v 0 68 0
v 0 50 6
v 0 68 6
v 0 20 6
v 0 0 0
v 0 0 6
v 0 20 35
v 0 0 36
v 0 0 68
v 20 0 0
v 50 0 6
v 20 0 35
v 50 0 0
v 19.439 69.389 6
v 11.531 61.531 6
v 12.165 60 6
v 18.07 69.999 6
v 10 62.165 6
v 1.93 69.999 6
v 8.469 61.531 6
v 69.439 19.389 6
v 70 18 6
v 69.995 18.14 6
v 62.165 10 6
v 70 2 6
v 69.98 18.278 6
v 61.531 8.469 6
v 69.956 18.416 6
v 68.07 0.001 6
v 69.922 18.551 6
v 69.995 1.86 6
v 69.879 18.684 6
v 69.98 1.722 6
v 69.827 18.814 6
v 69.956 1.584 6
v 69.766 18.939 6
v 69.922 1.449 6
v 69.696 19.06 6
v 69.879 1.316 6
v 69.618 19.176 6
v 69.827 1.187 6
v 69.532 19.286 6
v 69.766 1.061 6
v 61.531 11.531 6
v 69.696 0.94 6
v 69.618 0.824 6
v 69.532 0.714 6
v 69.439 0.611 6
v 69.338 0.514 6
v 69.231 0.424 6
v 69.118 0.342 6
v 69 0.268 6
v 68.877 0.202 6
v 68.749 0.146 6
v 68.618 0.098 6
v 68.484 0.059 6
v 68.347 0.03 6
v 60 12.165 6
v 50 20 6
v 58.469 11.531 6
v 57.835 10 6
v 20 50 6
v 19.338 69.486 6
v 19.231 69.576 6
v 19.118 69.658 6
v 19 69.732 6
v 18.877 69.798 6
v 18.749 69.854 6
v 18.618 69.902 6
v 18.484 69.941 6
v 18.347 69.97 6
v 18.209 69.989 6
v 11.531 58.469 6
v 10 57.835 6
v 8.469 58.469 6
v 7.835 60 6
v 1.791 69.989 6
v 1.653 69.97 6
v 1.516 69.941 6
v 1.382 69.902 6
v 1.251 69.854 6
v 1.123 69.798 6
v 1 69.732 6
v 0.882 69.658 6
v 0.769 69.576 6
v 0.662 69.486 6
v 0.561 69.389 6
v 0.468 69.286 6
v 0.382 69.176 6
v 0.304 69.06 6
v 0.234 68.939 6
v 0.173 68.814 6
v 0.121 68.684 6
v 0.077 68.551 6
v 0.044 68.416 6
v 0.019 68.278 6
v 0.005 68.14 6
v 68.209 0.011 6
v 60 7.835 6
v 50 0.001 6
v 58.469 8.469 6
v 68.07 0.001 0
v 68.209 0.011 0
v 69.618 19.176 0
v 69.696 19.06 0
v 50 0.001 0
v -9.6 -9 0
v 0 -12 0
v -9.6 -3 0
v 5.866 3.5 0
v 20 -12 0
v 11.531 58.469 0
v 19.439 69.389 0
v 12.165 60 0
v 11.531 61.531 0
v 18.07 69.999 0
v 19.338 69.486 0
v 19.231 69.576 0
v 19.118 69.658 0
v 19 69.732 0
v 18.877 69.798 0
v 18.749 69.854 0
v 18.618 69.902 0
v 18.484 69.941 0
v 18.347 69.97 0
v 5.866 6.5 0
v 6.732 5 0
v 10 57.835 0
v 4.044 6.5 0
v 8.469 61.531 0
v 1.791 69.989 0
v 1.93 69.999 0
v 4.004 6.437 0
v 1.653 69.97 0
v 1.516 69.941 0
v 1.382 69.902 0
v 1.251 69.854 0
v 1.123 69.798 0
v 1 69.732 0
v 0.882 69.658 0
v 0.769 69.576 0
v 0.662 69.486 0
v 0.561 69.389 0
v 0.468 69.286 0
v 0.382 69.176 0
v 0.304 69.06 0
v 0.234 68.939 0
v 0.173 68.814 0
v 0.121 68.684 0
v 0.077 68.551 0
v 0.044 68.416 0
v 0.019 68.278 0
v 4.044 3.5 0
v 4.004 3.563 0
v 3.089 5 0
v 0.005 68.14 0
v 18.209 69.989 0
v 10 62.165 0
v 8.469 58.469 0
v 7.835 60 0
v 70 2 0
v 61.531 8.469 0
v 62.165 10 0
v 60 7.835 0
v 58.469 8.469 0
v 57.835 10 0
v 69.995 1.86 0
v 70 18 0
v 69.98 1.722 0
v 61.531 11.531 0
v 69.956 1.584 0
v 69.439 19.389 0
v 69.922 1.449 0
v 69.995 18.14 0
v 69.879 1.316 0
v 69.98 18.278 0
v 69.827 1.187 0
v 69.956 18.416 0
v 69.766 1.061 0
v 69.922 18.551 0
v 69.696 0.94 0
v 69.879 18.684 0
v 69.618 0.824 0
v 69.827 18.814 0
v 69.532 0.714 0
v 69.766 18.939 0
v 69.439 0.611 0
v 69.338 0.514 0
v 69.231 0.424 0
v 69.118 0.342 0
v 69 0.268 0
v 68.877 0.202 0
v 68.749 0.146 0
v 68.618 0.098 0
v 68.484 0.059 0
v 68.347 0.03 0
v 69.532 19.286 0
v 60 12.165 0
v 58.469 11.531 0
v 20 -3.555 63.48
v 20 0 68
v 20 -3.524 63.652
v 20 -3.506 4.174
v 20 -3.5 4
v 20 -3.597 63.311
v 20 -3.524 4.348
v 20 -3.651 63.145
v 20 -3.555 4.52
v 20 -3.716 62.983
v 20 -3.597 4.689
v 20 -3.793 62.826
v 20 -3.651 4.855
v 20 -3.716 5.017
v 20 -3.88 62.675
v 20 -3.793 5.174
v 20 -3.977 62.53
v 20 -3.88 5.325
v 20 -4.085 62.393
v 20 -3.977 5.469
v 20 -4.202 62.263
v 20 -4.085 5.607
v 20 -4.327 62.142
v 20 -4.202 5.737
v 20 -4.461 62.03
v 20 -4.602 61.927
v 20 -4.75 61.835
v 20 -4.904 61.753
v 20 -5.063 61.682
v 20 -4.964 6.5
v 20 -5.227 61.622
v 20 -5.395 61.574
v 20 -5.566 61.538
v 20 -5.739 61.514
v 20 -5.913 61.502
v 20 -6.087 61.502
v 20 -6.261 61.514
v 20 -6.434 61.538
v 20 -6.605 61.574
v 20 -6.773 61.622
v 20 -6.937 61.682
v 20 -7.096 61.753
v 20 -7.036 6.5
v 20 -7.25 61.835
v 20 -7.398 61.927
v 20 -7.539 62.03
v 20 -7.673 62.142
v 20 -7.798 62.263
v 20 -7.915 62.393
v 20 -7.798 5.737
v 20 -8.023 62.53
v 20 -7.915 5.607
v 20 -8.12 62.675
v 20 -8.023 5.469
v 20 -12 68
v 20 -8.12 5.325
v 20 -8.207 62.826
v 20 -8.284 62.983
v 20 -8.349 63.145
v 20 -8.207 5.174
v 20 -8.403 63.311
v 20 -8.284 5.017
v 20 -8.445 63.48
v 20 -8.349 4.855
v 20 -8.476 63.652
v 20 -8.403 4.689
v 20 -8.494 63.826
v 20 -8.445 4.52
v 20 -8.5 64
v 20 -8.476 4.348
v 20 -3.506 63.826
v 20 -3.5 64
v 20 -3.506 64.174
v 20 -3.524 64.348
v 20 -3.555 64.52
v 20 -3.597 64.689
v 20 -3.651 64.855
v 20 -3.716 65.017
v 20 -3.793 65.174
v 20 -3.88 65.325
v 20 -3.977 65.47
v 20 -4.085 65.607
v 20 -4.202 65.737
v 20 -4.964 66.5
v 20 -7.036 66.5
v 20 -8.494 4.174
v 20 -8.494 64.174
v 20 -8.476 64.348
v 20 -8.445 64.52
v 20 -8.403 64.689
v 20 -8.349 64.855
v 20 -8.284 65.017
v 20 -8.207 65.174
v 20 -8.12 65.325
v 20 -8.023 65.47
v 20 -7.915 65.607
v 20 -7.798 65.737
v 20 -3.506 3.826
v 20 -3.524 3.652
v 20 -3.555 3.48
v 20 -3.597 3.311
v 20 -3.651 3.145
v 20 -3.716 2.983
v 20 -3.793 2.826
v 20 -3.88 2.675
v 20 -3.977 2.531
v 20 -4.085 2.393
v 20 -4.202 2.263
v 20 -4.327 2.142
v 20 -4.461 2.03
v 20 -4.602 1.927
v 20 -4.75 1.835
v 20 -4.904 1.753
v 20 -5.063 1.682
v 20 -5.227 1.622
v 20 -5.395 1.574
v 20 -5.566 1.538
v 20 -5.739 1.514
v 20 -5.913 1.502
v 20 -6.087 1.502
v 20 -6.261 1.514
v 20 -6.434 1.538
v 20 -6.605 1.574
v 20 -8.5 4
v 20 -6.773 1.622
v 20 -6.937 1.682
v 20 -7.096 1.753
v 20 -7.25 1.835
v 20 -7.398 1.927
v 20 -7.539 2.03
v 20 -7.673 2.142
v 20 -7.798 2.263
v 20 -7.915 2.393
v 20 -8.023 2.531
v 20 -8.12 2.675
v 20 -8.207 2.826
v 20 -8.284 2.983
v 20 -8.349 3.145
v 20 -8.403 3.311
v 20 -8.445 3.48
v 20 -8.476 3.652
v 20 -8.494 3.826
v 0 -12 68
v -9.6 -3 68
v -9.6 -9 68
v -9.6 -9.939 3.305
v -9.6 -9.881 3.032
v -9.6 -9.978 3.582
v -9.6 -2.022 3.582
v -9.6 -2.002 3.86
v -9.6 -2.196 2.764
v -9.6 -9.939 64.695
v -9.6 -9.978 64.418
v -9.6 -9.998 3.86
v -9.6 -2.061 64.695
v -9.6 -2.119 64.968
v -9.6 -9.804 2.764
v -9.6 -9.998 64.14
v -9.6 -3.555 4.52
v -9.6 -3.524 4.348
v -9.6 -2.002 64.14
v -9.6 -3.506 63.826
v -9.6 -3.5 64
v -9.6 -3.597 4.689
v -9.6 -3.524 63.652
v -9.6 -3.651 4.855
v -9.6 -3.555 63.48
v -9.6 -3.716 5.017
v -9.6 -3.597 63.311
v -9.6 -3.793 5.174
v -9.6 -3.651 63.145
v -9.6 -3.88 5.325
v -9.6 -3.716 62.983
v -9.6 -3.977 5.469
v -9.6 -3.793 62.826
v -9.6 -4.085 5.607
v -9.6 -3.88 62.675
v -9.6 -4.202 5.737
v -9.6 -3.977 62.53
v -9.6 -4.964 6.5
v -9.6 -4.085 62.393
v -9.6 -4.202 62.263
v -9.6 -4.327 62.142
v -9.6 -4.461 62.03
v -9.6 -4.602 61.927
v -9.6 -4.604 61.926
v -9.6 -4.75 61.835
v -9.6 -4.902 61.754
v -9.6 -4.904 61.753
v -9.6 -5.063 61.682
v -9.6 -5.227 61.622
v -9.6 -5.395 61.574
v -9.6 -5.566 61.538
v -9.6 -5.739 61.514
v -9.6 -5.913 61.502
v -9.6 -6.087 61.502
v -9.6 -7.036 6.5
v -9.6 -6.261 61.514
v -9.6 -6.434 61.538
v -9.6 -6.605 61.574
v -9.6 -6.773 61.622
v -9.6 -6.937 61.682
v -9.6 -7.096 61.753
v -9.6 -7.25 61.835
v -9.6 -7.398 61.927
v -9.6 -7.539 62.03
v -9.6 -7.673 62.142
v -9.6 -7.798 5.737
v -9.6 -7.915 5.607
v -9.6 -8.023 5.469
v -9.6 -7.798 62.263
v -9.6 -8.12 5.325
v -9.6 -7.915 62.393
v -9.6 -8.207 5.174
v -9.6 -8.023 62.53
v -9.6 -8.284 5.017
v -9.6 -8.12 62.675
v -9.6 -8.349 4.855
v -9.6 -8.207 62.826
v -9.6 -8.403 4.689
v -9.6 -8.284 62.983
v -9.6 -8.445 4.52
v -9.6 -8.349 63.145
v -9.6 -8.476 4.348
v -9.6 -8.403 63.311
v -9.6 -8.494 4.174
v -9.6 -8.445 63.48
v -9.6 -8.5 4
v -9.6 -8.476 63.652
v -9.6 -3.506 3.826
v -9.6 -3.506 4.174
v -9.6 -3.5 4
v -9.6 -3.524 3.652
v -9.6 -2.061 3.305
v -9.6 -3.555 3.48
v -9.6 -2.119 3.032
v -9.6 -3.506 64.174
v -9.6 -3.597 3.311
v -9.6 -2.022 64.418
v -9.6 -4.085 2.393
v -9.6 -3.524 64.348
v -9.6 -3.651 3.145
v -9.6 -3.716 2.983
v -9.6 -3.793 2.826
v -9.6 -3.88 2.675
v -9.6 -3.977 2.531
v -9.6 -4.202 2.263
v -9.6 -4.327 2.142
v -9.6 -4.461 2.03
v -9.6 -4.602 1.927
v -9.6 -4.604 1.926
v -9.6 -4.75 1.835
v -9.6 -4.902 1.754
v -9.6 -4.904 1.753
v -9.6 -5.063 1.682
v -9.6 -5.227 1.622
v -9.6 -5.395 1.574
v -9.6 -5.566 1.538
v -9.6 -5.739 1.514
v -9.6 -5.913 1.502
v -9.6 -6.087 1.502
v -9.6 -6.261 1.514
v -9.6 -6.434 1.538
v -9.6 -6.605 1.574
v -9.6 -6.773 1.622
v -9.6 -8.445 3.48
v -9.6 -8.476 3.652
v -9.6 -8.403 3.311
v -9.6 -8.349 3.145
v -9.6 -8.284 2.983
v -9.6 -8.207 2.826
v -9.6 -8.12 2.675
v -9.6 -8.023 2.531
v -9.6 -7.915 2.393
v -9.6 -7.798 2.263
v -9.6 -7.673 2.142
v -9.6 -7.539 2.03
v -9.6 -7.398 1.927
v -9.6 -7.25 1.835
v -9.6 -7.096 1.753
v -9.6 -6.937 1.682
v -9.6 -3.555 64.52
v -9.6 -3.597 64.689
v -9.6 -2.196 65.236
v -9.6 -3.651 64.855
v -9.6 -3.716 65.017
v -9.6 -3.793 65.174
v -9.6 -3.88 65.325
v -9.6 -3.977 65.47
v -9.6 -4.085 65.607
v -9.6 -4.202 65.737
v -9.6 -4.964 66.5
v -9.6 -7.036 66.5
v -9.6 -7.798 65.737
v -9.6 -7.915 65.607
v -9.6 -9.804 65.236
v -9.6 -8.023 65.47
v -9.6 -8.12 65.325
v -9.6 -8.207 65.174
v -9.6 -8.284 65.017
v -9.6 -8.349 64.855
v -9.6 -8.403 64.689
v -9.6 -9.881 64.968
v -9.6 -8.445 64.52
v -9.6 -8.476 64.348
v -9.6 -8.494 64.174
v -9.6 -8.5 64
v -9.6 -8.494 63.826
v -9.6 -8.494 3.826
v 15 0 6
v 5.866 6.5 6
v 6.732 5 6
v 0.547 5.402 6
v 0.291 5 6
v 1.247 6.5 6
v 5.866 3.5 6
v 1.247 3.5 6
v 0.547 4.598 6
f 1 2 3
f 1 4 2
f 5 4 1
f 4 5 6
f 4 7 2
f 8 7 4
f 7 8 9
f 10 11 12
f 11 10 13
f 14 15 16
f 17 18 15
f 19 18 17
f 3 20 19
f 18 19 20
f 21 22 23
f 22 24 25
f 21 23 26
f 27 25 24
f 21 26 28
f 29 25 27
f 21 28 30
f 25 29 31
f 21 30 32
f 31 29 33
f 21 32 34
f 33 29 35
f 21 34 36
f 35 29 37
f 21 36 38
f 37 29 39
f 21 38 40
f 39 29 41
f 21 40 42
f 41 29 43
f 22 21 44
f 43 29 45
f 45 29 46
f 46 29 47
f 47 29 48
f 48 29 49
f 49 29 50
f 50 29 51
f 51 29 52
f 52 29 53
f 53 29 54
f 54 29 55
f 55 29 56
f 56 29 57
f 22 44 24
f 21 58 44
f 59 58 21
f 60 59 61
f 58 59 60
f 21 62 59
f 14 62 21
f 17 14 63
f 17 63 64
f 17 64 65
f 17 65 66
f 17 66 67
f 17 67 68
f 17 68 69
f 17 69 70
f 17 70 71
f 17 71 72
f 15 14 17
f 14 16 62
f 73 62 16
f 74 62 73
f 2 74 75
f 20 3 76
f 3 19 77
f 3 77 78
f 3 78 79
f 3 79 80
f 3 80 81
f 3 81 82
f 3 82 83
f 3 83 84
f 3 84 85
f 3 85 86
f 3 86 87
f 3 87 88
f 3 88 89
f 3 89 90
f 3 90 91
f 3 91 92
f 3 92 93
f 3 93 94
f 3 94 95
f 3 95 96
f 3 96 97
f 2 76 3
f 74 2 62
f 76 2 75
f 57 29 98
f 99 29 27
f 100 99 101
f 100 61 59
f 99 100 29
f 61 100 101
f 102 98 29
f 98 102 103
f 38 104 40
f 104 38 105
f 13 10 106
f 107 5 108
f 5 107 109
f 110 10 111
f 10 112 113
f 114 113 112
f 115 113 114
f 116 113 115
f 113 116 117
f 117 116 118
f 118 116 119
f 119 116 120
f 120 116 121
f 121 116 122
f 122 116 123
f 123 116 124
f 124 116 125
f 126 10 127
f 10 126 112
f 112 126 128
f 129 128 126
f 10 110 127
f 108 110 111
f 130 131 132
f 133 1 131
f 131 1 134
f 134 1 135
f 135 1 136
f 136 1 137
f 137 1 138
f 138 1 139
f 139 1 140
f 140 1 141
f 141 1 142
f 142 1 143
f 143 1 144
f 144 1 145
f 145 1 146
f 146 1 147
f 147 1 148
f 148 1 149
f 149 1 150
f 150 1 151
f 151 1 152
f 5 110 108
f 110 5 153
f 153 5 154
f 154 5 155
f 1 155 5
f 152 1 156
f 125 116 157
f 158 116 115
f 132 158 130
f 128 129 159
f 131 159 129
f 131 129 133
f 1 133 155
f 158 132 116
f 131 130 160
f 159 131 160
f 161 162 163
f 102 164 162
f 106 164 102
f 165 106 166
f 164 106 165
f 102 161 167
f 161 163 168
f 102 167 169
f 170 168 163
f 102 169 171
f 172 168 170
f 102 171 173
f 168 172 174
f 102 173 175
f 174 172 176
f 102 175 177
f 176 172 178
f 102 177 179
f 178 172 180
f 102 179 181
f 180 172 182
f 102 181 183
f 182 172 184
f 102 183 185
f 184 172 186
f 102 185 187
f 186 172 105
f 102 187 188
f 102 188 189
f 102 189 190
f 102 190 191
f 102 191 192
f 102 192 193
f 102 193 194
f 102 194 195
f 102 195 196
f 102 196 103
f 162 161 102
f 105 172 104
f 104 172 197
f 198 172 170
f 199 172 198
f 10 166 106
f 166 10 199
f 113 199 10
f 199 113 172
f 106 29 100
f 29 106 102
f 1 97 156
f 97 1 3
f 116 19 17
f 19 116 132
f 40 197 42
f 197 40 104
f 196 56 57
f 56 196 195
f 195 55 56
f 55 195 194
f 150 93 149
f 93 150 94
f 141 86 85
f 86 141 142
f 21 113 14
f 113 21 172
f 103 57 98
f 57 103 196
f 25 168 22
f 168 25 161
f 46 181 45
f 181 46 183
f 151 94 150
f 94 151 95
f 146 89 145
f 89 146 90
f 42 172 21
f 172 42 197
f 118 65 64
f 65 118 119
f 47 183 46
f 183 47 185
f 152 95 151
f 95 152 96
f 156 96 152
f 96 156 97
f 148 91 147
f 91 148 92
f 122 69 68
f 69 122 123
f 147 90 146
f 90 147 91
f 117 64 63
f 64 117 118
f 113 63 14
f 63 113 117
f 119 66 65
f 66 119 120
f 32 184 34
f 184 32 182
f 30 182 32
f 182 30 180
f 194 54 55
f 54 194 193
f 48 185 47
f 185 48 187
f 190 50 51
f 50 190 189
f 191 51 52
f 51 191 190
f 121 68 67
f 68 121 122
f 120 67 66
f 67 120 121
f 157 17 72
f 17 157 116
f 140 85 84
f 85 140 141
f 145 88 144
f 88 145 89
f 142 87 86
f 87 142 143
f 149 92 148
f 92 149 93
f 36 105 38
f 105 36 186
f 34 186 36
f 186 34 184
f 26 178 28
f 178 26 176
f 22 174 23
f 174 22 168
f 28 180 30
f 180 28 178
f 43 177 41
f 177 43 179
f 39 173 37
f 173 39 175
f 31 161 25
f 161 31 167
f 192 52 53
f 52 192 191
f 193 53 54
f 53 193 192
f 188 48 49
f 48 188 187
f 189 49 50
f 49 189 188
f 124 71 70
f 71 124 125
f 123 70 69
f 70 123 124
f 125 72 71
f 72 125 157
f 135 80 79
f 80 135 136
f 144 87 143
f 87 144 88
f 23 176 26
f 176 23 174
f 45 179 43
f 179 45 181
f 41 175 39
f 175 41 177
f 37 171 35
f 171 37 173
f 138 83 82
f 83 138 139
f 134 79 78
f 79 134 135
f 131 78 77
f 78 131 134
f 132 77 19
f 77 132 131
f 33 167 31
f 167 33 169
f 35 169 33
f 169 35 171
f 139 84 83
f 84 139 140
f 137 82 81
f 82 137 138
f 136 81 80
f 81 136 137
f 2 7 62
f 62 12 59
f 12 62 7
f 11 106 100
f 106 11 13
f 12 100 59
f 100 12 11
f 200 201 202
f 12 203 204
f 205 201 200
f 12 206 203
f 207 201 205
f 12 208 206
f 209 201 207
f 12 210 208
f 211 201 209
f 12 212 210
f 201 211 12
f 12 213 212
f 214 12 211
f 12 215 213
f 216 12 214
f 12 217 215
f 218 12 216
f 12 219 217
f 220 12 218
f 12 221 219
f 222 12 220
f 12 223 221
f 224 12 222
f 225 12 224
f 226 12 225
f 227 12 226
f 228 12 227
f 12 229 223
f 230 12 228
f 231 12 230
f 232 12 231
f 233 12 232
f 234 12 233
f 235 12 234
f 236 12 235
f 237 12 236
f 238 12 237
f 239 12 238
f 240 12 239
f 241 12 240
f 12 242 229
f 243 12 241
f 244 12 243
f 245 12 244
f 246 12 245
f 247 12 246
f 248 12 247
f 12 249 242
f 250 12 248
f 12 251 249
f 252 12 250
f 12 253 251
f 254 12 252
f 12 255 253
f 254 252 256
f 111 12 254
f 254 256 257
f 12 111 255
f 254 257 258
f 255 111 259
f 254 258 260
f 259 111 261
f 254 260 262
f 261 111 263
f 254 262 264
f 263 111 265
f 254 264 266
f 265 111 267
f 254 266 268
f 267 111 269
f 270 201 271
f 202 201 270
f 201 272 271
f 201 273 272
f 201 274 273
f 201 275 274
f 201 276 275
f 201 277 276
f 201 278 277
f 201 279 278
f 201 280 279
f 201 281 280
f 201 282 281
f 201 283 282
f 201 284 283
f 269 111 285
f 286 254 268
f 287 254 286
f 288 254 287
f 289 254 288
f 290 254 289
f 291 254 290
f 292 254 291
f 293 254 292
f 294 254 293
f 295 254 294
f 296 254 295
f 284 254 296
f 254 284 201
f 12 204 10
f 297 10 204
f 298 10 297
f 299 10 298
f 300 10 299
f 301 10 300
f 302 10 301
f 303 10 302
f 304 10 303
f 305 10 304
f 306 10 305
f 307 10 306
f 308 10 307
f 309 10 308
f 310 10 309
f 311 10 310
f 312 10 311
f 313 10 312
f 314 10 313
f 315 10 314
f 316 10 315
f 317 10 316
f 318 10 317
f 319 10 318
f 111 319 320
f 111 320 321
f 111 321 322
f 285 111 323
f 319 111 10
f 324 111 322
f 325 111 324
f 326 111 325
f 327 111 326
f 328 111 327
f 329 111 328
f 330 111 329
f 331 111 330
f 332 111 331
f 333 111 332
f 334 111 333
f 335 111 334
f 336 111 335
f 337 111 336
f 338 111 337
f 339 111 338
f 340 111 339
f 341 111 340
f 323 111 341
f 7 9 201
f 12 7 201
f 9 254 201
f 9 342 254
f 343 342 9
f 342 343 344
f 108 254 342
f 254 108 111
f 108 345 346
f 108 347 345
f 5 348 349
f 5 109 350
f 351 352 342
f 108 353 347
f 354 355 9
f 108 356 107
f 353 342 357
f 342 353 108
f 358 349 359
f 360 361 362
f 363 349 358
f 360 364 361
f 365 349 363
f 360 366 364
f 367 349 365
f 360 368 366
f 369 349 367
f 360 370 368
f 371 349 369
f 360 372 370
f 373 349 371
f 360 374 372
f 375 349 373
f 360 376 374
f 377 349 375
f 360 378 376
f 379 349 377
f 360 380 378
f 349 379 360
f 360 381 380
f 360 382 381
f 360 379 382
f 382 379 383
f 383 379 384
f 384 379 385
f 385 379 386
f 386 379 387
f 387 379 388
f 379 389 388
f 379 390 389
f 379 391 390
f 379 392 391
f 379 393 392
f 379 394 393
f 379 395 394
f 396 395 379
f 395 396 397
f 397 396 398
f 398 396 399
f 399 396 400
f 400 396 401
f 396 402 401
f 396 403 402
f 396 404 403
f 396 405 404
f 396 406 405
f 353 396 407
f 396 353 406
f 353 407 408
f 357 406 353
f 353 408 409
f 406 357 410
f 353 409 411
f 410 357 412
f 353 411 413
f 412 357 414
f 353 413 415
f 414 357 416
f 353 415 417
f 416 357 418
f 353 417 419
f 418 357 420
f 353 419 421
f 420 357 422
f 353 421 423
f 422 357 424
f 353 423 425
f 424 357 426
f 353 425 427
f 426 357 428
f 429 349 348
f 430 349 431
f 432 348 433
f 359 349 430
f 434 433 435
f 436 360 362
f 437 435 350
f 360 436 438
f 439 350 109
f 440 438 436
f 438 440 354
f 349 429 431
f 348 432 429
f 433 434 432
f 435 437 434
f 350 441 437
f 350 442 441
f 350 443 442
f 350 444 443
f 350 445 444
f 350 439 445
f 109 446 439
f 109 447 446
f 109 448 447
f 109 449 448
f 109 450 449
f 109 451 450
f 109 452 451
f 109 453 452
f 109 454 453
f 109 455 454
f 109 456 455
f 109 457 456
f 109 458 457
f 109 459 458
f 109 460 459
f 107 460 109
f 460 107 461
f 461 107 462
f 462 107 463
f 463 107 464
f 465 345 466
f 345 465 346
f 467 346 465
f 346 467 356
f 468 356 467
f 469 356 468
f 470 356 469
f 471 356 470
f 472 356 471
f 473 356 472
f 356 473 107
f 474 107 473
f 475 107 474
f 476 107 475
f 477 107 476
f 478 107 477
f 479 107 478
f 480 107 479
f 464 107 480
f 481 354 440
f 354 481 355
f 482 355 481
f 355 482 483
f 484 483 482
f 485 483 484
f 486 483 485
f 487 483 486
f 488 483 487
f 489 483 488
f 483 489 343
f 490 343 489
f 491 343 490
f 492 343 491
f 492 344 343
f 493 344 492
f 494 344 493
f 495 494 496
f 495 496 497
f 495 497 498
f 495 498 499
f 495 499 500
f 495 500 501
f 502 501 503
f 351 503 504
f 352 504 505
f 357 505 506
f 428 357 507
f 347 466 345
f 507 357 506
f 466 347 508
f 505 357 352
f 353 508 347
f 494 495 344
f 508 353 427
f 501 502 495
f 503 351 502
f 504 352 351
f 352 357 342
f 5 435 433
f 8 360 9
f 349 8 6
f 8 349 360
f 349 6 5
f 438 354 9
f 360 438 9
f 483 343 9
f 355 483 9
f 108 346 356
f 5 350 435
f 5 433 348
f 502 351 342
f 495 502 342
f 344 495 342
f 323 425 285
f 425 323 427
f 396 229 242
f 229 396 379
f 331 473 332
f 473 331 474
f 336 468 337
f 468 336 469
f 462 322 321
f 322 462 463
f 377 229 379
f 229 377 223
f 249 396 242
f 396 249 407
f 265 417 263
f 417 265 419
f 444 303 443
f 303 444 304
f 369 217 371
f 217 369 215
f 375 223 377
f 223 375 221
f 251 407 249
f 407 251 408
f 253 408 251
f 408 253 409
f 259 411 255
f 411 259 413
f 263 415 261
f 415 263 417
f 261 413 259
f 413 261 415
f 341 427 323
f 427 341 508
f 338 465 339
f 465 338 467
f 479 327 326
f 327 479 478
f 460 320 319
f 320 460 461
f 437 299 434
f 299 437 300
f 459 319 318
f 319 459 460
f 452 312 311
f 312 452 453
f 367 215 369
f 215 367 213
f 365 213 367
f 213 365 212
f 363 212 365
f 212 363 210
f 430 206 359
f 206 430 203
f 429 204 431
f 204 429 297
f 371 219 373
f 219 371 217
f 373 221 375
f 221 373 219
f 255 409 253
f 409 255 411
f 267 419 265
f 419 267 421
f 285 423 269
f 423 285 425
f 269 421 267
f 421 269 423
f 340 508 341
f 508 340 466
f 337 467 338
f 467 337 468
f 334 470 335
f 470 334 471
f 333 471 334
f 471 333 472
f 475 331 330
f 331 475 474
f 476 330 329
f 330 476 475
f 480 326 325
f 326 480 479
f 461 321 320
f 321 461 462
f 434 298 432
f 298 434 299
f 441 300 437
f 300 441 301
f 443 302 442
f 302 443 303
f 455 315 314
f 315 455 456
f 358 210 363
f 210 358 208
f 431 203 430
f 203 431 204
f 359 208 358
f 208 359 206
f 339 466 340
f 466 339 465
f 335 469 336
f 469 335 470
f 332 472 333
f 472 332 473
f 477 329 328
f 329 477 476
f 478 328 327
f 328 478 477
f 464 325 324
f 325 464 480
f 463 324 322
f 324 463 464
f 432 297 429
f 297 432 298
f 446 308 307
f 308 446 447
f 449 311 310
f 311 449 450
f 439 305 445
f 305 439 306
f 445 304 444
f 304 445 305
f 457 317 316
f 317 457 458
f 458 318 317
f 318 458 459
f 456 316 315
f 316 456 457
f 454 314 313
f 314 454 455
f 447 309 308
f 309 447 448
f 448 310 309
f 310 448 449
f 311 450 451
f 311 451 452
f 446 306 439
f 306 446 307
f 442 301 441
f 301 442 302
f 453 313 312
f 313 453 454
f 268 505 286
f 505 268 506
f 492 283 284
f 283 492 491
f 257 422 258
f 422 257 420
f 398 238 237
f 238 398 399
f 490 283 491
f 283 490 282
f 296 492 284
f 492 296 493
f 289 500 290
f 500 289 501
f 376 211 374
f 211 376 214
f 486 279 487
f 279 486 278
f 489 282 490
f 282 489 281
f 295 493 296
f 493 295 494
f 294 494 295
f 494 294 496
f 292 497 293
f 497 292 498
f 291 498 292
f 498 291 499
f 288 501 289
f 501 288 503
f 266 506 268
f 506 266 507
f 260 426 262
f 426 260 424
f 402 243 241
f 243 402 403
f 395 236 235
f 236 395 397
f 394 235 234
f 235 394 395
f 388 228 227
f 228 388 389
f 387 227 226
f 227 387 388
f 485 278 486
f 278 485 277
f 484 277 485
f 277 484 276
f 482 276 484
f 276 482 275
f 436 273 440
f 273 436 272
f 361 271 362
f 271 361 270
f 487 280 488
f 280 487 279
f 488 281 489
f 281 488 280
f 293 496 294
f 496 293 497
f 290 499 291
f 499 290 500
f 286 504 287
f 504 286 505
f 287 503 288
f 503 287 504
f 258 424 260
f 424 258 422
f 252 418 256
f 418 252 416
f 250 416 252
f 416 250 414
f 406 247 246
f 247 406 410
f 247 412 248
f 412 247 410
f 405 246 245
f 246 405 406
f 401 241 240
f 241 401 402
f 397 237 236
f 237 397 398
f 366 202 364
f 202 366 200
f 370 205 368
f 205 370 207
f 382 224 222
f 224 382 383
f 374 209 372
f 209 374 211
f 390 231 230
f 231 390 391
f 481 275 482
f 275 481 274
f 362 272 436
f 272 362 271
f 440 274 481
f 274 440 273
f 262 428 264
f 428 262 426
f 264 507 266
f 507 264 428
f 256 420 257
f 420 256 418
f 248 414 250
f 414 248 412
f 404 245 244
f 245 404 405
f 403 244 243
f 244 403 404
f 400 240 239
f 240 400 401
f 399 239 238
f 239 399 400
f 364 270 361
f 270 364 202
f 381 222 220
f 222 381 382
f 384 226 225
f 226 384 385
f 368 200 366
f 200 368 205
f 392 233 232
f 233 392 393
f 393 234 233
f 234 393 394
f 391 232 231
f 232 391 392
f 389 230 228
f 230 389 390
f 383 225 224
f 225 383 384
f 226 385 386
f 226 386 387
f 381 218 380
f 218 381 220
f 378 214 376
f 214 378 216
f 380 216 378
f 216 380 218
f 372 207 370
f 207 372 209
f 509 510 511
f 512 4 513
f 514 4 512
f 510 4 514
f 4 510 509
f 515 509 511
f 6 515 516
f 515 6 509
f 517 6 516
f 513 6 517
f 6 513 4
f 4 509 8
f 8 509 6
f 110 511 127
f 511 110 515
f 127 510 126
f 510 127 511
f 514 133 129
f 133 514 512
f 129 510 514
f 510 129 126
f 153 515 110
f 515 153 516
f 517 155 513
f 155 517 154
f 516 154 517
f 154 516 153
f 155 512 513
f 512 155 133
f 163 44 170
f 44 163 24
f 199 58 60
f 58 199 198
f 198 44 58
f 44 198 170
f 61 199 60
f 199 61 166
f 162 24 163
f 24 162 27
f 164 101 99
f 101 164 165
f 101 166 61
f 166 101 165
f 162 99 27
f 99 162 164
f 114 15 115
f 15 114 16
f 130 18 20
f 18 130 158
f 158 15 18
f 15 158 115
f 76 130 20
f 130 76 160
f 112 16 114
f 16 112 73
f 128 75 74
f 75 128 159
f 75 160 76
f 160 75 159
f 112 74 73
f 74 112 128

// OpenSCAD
// file: trunctear.scad
//A module for truncated tear drops.

trunctear(1, 0.5, 90);

module trunctear(height, radian, fn)
{
    hull()
    {
        cylinder(h = height, r = radian,$fn = fn);
        translate([0, radian/2, height/2])
            cube([2*(radian*(2*cos(45)-1)), radian, height], center = true);
    }
}
// file: polyhole.scad
// The Cylinder is dead! Long live the Cylinder!
// A module for a polyhole by radius, based on Nophead's work.

module polyhole(h, r, cent = false)
{
    n = max(round(4 * r), 3);
    cylinder(h = h, r = r / cos(180 / n), $fn = n, center = cent);
}
// main file
// A corner mount for the bed, which uses two V wheels. Uses 40mm m5 bolts to mount the wheels

use<polyhole.scad>
use<trunctear.scad>

BedMountC();

module BedMountC()
{
    difference()
    {
        union()
        {
            hull()
            {
                translate([10, 10, 3])
                    cube([20, 20, 6], center = true);
                translate([68, 2, 0])
                    cylinder(h = 6, r = 2, $fn = 90);
                translate([68, 18, 0])
                    cylinder(h = 6, r = 2, $fn = 90);
                translate([2, 68, 0])
                    cylinder(h = 6, r = 2, $fn = 90);
                translate([18, 68, 0])
                    cylinder(h = 6, r = 2, $fn = 90);
            }
            hull()
            {
                linear_extrude(height = 35)
                    polygon([[0, 0], [20, 0], [0, 20]]);
                linear_extrude(height = 6)
                    polygon([[0, 0], [50, 0], [50, 20], [20, 50], [0, 50]]);
            }
            hull()
            {
                linear_extrude(height = 35)
                    polygon([[0, 0], [20, 0], [0, 20]]);
                linear_extrude(height = 68)
                    polygon([[0, -12], [20, -12], [20, 0], [0, 0]]);
            }
            linear_extrude(height = 20)
                polygon([[0, -12], [20, -12], [20, 0], [0, 0]]);
            hull()
            {
                hull()
                {
                    dist = 5; //distance from edge of bed to v slot extrusion
                    translate([-dist, -6, 1])
                        cube([(10-5.40)*2, 6, 2], center = true);
                    translate([-dist, -6, 4])
                        rotate([0, 90, 0])
                            cylinder(h = (10-5.40)*2, r = 4, $fn = 90, center = true);
                    translate([-dist, -6, 64])
                        rotate([0, 90, 0])
                            cylinder(h = (10-5.40)*2, r = 4, $fn = 90, center = true);
                    translate([-dist, -6, 67])
                        cube([(10-5.40)*2, 6, 2], center = true);
                }
                linear_extrude(height = 68)
                    polygon([[0, -12], [20, -12], [20, 0], [0, 0]]);
            }
        }
        translate([20, -6, 4])
            rotate([90, 0, -90])
                trunctear(30, 2.5, 90);
        translate([20, -6, 64])
            rotate([90, 0, -90])
                trunctear(30, 2.5, 90);
        translate([0, 0, 6])
            linear_extrude(height = 30, scale = 0)
                polygon([[0, 0], [15, 0], [0, 20]]);
        hull()
        {
            translate([5, 5, 0])
                polyhole(6, 1.5);
            translate([5, 5, 0])
                rotate([0, -25, 0])
                    polyhole(10, 1.5);
        }
        translate([60, 10, 0])
            polyhole(6, 2);
        translate([10, 60, 0])
            polyhole(6, 2);
    }
}
